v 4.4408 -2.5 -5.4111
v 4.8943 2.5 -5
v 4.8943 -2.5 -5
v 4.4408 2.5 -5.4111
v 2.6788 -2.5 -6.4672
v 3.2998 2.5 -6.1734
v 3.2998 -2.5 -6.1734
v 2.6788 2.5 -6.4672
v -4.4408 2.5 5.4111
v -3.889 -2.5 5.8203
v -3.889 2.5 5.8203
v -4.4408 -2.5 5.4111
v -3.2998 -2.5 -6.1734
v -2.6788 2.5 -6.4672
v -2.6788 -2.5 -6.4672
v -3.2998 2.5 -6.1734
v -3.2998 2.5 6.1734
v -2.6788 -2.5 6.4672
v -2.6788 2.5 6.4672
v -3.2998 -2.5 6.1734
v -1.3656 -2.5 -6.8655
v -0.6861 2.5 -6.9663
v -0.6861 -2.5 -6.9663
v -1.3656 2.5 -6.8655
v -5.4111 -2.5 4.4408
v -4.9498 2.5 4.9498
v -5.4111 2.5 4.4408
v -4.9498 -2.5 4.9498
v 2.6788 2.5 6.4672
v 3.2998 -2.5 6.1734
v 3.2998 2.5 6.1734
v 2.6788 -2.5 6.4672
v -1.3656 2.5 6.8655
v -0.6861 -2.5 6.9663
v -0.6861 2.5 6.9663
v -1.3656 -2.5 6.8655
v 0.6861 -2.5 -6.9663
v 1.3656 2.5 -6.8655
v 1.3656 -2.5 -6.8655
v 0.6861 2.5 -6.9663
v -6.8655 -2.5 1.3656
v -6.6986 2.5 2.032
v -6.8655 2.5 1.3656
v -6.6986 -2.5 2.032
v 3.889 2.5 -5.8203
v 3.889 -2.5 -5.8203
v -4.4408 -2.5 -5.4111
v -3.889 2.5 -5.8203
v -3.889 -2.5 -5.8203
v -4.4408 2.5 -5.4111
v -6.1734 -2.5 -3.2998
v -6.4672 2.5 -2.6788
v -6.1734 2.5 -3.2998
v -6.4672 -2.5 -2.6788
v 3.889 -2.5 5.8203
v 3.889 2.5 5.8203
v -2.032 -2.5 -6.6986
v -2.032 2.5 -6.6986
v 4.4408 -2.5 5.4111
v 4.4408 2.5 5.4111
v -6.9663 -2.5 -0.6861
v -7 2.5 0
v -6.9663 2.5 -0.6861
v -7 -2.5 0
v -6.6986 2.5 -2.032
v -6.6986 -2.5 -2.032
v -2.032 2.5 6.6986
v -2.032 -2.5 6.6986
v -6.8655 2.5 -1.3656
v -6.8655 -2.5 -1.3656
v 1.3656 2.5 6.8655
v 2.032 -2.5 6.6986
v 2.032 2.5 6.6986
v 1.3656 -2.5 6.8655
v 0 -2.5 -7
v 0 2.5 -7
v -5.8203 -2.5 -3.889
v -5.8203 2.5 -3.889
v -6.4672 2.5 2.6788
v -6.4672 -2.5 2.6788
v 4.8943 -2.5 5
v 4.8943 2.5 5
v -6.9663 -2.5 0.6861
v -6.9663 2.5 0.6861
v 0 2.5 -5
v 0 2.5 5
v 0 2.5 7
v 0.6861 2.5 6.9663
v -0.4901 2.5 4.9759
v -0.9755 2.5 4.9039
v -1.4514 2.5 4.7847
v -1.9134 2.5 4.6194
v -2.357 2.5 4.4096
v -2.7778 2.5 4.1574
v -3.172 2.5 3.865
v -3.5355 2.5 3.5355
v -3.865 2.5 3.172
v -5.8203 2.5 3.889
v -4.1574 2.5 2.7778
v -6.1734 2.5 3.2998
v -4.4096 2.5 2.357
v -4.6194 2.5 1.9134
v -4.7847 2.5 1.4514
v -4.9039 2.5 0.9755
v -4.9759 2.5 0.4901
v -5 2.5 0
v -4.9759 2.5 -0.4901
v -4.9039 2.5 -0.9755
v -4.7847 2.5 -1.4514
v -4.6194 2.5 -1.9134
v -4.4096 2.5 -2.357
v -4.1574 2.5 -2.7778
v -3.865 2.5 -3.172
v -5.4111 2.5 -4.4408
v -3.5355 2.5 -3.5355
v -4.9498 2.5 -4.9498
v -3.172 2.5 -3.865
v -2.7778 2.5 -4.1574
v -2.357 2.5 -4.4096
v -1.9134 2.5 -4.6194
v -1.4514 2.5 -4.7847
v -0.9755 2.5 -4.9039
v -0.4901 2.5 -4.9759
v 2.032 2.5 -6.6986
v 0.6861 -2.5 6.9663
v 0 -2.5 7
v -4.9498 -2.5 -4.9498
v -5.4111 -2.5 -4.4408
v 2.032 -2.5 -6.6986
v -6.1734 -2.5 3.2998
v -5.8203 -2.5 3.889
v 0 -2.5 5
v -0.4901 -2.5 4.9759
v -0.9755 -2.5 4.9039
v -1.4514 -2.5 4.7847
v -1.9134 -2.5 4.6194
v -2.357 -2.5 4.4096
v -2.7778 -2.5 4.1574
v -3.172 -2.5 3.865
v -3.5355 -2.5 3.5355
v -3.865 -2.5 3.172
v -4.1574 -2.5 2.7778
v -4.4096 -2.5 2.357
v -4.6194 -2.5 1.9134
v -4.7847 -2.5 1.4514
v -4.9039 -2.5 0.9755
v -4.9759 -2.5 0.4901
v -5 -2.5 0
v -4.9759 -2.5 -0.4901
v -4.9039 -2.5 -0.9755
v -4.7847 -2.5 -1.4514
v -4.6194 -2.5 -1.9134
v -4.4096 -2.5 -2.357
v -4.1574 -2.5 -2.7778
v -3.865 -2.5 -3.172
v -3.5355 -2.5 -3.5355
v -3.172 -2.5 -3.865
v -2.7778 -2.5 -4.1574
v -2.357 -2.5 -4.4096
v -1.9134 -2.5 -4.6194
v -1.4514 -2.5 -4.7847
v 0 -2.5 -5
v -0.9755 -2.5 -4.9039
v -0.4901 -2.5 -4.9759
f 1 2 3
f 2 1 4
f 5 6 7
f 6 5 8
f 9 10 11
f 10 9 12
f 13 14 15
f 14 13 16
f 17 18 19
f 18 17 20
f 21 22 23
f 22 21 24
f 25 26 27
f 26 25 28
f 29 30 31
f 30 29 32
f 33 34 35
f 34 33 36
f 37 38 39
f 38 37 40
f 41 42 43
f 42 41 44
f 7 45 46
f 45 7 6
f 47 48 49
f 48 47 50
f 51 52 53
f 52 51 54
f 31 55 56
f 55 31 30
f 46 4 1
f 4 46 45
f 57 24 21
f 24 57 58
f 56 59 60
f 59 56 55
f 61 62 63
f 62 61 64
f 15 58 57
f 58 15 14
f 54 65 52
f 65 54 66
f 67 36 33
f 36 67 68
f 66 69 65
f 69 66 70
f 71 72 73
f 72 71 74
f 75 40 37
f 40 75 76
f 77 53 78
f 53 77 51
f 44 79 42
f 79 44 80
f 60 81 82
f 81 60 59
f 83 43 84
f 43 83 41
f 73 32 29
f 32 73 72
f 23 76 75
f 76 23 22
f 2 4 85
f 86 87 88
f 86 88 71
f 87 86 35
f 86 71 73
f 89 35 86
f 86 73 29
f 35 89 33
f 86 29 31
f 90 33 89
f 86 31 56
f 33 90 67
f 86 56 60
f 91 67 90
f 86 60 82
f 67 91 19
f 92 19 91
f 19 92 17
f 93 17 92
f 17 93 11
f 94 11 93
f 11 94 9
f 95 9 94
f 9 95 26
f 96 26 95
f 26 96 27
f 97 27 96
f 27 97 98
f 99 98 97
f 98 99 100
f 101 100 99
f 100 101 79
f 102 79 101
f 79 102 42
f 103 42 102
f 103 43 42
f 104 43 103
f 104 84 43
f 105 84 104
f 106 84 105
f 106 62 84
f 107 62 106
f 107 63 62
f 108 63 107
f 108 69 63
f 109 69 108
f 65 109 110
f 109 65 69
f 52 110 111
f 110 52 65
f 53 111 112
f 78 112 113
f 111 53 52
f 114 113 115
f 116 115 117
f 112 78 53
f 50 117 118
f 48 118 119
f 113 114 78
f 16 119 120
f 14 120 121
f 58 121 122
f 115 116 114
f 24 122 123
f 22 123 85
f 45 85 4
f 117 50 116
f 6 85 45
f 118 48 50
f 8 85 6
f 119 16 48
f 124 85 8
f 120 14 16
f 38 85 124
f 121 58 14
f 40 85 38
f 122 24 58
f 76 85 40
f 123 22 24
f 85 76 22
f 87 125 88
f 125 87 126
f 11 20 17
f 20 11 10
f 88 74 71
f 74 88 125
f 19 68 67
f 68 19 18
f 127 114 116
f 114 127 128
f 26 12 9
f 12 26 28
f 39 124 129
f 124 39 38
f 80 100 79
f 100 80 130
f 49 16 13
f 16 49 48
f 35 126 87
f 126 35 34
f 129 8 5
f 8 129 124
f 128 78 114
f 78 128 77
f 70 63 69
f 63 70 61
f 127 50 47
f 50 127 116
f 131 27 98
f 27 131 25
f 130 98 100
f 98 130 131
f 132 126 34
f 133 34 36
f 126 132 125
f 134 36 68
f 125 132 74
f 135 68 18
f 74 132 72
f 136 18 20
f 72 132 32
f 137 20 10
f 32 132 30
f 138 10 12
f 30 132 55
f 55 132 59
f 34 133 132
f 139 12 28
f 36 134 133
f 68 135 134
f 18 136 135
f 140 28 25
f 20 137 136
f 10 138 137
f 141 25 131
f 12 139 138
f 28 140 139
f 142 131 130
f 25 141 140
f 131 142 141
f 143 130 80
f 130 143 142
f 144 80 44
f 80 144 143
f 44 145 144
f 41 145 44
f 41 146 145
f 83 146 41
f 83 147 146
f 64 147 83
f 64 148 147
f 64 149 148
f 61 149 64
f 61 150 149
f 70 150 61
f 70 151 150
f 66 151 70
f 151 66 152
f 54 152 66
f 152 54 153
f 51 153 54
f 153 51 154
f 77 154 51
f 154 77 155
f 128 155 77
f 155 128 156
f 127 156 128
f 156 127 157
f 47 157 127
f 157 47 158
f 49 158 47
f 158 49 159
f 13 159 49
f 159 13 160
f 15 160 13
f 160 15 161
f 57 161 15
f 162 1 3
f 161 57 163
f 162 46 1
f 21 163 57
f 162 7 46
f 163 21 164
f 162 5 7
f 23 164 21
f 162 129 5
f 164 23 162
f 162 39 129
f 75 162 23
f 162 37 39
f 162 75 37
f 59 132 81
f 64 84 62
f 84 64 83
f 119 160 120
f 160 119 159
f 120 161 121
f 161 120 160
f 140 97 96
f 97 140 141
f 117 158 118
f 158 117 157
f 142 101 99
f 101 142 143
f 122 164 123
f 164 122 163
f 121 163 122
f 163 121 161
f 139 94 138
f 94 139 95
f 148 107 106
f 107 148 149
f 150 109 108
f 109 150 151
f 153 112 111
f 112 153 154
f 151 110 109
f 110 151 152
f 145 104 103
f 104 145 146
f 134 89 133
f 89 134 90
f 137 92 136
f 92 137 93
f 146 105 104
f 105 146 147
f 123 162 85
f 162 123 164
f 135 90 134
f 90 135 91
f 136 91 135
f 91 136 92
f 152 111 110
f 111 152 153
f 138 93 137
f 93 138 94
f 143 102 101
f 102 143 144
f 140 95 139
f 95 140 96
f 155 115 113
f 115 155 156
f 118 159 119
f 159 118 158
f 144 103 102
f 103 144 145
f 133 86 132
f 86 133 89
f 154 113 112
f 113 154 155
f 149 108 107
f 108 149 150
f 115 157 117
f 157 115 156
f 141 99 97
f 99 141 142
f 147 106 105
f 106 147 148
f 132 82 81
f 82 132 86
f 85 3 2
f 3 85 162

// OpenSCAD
$fn=64;
module cable_clip(radius=5, thickness=2, width=5) {
  difference() {
    // outer ring
    translate([0,0,0])
      rotate([90,0,0])
      cylinder(h=width, r=radius+thickness, center=true);
    // inner cutout
    translate([0,0,0])
      rotate([90,0,0])
      cylinder(h=width+2, r=radius, center=true);
    // opening slot
    translate([radius,0,0])
      cube([radius*2, radius*2, width*2], center=true);
  }
}

cable_clip();
